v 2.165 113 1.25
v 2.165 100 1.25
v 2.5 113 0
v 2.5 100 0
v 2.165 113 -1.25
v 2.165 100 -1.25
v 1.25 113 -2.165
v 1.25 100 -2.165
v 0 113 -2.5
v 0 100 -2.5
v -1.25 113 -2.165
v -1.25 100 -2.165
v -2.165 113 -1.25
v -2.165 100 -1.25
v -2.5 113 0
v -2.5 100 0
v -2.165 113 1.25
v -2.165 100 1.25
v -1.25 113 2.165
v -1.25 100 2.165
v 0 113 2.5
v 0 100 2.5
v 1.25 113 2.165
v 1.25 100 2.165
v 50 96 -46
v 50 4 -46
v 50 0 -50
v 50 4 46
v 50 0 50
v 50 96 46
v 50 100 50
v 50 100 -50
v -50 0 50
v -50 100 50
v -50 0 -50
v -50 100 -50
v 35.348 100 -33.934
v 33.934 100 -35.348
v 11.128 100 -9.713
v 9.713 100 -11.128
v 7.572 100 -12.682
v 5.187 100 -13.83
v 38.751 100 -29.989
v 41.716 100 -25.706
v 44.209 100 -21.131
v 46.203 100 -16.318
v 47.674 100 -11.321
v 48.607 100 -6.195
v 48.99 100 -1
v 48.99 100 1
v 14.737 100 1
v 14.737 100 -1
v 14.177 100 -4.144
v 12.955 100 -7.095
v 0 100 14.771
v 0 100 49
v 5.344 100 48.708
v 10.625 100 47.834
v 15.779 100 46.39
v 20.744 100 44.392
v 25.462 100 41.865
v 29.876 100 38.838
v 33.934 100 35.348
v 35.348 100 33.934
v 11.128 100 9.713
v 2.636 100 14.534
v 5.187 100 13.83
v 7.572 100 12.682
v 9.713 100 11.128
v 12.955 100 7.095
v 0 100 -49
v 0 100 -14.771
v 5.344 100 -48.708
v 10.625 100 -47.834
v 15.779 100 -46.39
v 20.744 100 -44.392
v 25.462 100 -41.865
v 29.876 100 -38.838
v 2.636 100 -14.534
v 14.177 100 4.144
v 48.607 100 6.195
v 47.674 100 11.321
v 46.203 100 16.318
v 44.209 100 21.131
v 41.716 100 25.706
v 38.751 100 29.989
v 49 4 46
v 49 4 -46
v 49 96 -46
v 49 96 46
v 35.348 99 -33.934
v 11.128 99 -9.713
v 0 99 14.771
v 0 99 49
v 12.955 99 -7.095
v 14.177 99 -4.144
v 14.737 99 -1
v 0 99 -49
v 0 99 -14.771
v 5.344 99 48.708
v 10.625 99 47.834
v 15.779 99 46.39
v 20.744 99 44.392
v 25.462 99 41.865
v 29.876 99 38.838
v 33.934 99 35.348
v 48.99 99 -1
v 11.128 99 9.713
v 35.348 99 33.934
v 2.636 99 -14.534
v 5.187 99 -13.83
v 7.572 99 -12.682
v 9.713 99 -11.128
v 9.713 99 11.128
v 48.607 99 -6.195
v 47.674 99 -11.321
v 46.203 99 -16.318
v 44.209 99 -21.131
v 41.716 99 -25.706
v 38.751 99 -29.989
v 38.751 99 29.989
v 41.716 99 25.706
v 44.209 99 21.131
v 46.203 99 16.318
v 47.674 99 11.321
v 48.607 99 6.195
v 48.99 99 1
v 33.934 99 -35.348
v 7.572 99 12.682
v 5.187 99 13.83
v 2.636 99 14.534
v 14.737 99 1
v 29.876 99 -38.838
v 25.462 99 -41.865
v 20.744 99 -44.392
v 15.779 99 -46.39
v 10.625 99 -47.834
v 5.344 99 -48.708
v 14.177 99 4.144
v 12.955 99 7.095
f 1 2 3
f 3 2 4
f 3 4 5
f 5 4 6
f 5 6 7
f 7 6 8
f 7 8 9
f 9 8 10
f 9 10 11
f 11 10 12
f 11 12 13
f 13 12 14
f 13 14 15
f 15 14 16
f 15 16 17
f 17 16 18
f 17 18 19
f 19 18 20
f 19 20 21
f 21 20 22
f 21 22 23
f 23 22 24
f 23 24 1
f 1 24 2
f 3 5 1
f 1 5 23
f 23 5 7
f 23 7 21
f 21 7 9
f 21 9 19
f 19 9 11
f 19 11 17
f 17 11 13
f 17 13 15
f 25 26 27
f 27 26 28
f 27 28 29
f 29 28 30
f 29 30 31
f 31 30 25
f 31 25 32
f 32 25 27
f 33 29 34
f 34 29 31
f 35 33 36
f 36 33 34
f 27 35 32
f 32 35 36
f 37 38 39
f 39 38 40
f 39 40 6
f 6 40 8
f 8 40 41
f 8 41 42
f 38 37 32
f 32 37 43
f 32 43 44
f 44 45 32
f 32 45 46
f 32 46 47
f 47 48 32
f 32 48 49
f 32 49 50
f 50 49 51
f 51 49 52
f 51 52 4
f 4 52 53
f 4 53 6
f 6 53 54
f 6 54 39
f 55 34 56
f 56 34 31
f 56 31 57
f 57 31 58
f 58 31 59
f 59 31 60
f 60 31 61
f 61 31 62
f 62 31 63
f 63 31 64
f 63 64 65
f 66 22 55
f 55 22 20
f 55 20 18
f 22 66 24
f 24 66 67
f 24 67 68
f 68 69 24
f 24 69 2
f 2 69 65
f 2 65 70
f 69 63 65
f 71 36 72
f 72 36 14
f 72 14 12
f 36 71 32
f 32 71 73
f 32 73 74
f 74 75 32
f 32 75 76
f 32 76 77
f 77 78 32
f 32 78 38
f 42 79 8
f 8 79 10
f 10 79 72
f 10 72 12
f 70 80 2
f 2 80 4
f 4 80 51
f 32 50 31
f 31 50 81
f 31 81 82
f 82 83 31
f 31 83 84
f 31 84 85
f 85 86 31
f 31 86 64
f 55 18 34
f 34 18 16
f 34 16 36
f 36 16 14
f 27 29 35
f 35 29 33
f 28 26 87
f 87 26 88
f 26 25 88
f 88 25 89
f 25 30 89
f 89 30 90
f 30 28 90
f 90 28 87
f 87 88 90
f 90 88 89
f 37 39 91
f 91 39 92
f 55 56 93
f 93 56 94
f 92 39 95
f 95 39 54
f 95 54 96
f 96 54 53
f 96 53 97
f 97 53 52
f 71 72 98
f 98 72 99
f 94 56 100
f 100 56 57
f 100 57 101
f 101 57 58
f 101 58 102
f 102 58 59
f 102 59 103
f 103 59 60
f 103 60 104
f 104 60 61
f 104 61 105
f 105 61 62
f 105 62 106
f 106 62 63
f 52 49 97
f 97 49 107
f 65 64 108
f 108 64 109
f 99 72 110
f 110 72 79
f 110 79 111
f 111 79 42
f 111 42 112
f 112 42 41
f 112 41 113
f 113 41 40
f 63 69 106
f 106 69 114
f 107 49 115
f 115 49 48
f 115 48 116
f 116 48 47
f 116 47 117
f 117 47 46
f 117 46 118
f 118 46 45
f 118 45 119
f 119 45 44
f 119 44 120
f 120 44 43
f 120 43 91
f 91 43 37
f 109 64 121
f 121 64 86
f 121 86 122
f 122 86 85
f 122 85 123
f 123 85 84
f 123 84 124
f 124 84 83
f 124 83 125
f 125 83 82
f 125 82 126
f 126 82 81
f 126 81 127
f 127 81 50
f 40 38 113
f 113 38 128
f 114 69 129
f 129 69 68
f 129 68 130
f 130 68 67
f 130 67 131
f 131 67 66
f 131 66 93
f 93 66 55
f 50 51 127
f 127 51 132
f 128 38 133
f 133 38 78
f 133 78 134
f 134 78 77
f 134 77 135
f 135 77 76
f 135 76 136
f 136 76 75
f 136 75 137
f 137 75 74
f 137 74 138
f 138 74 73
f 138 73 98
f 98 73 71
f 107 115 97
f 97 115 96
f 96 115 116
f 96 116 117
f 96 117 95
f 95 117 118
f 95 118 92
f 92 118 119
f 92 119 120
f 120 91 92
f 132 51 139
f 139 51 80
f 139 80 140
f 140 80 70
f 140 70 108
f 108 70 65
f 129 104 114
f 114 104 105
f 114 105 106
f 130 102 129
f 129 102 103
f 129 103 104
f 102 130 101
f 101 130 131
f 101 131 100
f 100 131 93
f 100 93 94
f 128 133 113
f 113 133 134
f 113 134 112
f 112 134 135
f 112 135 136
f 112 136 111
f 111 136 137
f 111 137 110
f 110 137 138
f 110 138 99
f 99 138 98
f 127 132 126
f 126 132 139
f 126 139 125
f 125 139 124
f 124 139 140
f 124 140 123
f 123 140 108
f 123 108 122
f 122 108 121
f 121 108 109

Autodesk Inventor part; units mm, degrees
ref_plane "YZ Plane" through (0, 0, 0) normal (1, 0, 0) x (0, 1, 0)
ref_plane "XZ Plane" through (0, 0, 0) normal (0, 1, 0) x (-1, 0, 0)
ref_plane "XY Plane" through (0, 0, 0) normal (0, 0, 1) x (1, 0, 0)
sketch "Sketch1" plane through (0, 0, 0) normal (0, 1, 0) x (-1, 0, 0)
  line L0 (-50, 50) -> (50, 50)
  line L1 (50, 50) -> (50, -50)
  line L2 (50, -50) -> (-50, -50)
  line L3 (-50, -50) -> (-50, 50)
  line L4 (-50, 50) -> (50, -50) construction
  line L5 (50, 50) -> (-50, -50) construction
  point P0 (0, 0)
  dimension "d0" = 100
  dimension "d1" = 100
extrude "Extrusion1" add sketch "Sketch1" along normal blind 100
sketch "Sketch2" plane through (0, 100, 0) normal (0, 1, 0) x (1, 0, 0)
  line L0 (50, 50) -> (-50, 50) projected
  line L1 (-50, 50) -> (-50, -50) projected
  line L2 (-50, -50) -> (50, -50) projected
  line L3 (50, -50) -> (50, 50) projected
  line L4 (50, -50) -> (-50, 50)
  line L5 (-50, 50) -> (-50, -50) projected
  line L6 (-50, -50) -> (50, 50)
  circle A0 centre (0, 0) radius 2.5
  dimension "d4" = 5
extrude "Extrusion2" add sketch "Sketch2" along normal blind 13 contours A0 L4 L6 | L6 L4 A0 | L4 L6 A0 | A0 L6 L4
sketch "Sketch3" plane through (50, 0, 50) normal (1, 0, 0) x (0, 0, -1)
  line L0 (0, 0) -> (100, 0) projected
  line L1 (100, 0) -> (100, 100) projected
  line L2 (0, 100) -> (100, 100) projected
  line L3 (0, 0) -> (0, 100) projected
  line L4 (96, 96) -> (96, 4)
  line L5 (96, 4) -> (4, 4)
  line L6 (4, 4) -> (4, 96)
  line L7 (4, 96) -> (96, 96)
  point P0 (50, 0)
  dimension "d7" = 4
extrude "Extrusion3" cut sketch "Sketch3" against normal blind 1 contours L4 L5 L6 L7
sketch "Sketch4" plane through (0, 100, 0) normal (0, 1, 0) x (1, 0, 0)
  circle A0 centre (0, 0) radius 2.5 projected
  circle A1 centre (0, 0) radius 49
  circle A2 centre (0, 0) radius 14.7708
  line L0 (50, -50) -> (50, 50) projected
  line L1 (0, 0) -> (50, 50)
  line L2 (-50, -50) -> (50, -50) projected
  line L3 (0, 0) -> (50, -50)
  line L4 (0, -50) -> (0, 50)
  line L5 (50, 50) -> (-50, 50) projected
  line L6 (-1, -50) -> (-1, 50)
  line L7 (50.7071, -49.2929) -> (1.4142, 0)
  line L8 (1.4142, 0) -> (50.7071, 49.2929)
  line L9 (49.2929, -50.7071) -> (-1.4142, 0)
  line L10 (-1.4142, 0) -> (49.2929, 50.7071)
  line L11 (0, 0) -> (50, 0)
  line L12 (0, -1) -> (50, -1)
  line L13 (0, 1) -> (50, 1)
  point P0 (9.7134, 11.1276)
  point P1 (33.9339, 35.3481)
  point P2 (0, 49)
  point P3 (0, 14.7708)
  point P4 (14.7369, 1)
  point P5 (48.9898, 1)
  point P6 (35.3481, 33.9339)
  point P7 (11.1276, 9.7134)
  point P8 (33.9339, -35.3481)
  point P9 (9.7134, -11.1276)
  point P10 (0, -14.7708)
  point P11 (0, -49)
  point P12 (48.9898, -1)
  point P13 (14.7369, -1)
  point P14 (11.1276, -9.7134)
  point P15 (35.3481, -33.9339)
  dimension "d10" = 1
  dimension "d11" = 1
  dimension "d12" = 1
  dimension "d13" = 1
  dimension "d14" = 1
extrude "Extrusion4" cut sketch "Sketch4" against normal blind 1 contours A2 L8 A1 L13 | L12 A1 L7 A2 | A2 L4 A1 L10 | L9 A1 L4 A2
properties part number "stepper_box"
